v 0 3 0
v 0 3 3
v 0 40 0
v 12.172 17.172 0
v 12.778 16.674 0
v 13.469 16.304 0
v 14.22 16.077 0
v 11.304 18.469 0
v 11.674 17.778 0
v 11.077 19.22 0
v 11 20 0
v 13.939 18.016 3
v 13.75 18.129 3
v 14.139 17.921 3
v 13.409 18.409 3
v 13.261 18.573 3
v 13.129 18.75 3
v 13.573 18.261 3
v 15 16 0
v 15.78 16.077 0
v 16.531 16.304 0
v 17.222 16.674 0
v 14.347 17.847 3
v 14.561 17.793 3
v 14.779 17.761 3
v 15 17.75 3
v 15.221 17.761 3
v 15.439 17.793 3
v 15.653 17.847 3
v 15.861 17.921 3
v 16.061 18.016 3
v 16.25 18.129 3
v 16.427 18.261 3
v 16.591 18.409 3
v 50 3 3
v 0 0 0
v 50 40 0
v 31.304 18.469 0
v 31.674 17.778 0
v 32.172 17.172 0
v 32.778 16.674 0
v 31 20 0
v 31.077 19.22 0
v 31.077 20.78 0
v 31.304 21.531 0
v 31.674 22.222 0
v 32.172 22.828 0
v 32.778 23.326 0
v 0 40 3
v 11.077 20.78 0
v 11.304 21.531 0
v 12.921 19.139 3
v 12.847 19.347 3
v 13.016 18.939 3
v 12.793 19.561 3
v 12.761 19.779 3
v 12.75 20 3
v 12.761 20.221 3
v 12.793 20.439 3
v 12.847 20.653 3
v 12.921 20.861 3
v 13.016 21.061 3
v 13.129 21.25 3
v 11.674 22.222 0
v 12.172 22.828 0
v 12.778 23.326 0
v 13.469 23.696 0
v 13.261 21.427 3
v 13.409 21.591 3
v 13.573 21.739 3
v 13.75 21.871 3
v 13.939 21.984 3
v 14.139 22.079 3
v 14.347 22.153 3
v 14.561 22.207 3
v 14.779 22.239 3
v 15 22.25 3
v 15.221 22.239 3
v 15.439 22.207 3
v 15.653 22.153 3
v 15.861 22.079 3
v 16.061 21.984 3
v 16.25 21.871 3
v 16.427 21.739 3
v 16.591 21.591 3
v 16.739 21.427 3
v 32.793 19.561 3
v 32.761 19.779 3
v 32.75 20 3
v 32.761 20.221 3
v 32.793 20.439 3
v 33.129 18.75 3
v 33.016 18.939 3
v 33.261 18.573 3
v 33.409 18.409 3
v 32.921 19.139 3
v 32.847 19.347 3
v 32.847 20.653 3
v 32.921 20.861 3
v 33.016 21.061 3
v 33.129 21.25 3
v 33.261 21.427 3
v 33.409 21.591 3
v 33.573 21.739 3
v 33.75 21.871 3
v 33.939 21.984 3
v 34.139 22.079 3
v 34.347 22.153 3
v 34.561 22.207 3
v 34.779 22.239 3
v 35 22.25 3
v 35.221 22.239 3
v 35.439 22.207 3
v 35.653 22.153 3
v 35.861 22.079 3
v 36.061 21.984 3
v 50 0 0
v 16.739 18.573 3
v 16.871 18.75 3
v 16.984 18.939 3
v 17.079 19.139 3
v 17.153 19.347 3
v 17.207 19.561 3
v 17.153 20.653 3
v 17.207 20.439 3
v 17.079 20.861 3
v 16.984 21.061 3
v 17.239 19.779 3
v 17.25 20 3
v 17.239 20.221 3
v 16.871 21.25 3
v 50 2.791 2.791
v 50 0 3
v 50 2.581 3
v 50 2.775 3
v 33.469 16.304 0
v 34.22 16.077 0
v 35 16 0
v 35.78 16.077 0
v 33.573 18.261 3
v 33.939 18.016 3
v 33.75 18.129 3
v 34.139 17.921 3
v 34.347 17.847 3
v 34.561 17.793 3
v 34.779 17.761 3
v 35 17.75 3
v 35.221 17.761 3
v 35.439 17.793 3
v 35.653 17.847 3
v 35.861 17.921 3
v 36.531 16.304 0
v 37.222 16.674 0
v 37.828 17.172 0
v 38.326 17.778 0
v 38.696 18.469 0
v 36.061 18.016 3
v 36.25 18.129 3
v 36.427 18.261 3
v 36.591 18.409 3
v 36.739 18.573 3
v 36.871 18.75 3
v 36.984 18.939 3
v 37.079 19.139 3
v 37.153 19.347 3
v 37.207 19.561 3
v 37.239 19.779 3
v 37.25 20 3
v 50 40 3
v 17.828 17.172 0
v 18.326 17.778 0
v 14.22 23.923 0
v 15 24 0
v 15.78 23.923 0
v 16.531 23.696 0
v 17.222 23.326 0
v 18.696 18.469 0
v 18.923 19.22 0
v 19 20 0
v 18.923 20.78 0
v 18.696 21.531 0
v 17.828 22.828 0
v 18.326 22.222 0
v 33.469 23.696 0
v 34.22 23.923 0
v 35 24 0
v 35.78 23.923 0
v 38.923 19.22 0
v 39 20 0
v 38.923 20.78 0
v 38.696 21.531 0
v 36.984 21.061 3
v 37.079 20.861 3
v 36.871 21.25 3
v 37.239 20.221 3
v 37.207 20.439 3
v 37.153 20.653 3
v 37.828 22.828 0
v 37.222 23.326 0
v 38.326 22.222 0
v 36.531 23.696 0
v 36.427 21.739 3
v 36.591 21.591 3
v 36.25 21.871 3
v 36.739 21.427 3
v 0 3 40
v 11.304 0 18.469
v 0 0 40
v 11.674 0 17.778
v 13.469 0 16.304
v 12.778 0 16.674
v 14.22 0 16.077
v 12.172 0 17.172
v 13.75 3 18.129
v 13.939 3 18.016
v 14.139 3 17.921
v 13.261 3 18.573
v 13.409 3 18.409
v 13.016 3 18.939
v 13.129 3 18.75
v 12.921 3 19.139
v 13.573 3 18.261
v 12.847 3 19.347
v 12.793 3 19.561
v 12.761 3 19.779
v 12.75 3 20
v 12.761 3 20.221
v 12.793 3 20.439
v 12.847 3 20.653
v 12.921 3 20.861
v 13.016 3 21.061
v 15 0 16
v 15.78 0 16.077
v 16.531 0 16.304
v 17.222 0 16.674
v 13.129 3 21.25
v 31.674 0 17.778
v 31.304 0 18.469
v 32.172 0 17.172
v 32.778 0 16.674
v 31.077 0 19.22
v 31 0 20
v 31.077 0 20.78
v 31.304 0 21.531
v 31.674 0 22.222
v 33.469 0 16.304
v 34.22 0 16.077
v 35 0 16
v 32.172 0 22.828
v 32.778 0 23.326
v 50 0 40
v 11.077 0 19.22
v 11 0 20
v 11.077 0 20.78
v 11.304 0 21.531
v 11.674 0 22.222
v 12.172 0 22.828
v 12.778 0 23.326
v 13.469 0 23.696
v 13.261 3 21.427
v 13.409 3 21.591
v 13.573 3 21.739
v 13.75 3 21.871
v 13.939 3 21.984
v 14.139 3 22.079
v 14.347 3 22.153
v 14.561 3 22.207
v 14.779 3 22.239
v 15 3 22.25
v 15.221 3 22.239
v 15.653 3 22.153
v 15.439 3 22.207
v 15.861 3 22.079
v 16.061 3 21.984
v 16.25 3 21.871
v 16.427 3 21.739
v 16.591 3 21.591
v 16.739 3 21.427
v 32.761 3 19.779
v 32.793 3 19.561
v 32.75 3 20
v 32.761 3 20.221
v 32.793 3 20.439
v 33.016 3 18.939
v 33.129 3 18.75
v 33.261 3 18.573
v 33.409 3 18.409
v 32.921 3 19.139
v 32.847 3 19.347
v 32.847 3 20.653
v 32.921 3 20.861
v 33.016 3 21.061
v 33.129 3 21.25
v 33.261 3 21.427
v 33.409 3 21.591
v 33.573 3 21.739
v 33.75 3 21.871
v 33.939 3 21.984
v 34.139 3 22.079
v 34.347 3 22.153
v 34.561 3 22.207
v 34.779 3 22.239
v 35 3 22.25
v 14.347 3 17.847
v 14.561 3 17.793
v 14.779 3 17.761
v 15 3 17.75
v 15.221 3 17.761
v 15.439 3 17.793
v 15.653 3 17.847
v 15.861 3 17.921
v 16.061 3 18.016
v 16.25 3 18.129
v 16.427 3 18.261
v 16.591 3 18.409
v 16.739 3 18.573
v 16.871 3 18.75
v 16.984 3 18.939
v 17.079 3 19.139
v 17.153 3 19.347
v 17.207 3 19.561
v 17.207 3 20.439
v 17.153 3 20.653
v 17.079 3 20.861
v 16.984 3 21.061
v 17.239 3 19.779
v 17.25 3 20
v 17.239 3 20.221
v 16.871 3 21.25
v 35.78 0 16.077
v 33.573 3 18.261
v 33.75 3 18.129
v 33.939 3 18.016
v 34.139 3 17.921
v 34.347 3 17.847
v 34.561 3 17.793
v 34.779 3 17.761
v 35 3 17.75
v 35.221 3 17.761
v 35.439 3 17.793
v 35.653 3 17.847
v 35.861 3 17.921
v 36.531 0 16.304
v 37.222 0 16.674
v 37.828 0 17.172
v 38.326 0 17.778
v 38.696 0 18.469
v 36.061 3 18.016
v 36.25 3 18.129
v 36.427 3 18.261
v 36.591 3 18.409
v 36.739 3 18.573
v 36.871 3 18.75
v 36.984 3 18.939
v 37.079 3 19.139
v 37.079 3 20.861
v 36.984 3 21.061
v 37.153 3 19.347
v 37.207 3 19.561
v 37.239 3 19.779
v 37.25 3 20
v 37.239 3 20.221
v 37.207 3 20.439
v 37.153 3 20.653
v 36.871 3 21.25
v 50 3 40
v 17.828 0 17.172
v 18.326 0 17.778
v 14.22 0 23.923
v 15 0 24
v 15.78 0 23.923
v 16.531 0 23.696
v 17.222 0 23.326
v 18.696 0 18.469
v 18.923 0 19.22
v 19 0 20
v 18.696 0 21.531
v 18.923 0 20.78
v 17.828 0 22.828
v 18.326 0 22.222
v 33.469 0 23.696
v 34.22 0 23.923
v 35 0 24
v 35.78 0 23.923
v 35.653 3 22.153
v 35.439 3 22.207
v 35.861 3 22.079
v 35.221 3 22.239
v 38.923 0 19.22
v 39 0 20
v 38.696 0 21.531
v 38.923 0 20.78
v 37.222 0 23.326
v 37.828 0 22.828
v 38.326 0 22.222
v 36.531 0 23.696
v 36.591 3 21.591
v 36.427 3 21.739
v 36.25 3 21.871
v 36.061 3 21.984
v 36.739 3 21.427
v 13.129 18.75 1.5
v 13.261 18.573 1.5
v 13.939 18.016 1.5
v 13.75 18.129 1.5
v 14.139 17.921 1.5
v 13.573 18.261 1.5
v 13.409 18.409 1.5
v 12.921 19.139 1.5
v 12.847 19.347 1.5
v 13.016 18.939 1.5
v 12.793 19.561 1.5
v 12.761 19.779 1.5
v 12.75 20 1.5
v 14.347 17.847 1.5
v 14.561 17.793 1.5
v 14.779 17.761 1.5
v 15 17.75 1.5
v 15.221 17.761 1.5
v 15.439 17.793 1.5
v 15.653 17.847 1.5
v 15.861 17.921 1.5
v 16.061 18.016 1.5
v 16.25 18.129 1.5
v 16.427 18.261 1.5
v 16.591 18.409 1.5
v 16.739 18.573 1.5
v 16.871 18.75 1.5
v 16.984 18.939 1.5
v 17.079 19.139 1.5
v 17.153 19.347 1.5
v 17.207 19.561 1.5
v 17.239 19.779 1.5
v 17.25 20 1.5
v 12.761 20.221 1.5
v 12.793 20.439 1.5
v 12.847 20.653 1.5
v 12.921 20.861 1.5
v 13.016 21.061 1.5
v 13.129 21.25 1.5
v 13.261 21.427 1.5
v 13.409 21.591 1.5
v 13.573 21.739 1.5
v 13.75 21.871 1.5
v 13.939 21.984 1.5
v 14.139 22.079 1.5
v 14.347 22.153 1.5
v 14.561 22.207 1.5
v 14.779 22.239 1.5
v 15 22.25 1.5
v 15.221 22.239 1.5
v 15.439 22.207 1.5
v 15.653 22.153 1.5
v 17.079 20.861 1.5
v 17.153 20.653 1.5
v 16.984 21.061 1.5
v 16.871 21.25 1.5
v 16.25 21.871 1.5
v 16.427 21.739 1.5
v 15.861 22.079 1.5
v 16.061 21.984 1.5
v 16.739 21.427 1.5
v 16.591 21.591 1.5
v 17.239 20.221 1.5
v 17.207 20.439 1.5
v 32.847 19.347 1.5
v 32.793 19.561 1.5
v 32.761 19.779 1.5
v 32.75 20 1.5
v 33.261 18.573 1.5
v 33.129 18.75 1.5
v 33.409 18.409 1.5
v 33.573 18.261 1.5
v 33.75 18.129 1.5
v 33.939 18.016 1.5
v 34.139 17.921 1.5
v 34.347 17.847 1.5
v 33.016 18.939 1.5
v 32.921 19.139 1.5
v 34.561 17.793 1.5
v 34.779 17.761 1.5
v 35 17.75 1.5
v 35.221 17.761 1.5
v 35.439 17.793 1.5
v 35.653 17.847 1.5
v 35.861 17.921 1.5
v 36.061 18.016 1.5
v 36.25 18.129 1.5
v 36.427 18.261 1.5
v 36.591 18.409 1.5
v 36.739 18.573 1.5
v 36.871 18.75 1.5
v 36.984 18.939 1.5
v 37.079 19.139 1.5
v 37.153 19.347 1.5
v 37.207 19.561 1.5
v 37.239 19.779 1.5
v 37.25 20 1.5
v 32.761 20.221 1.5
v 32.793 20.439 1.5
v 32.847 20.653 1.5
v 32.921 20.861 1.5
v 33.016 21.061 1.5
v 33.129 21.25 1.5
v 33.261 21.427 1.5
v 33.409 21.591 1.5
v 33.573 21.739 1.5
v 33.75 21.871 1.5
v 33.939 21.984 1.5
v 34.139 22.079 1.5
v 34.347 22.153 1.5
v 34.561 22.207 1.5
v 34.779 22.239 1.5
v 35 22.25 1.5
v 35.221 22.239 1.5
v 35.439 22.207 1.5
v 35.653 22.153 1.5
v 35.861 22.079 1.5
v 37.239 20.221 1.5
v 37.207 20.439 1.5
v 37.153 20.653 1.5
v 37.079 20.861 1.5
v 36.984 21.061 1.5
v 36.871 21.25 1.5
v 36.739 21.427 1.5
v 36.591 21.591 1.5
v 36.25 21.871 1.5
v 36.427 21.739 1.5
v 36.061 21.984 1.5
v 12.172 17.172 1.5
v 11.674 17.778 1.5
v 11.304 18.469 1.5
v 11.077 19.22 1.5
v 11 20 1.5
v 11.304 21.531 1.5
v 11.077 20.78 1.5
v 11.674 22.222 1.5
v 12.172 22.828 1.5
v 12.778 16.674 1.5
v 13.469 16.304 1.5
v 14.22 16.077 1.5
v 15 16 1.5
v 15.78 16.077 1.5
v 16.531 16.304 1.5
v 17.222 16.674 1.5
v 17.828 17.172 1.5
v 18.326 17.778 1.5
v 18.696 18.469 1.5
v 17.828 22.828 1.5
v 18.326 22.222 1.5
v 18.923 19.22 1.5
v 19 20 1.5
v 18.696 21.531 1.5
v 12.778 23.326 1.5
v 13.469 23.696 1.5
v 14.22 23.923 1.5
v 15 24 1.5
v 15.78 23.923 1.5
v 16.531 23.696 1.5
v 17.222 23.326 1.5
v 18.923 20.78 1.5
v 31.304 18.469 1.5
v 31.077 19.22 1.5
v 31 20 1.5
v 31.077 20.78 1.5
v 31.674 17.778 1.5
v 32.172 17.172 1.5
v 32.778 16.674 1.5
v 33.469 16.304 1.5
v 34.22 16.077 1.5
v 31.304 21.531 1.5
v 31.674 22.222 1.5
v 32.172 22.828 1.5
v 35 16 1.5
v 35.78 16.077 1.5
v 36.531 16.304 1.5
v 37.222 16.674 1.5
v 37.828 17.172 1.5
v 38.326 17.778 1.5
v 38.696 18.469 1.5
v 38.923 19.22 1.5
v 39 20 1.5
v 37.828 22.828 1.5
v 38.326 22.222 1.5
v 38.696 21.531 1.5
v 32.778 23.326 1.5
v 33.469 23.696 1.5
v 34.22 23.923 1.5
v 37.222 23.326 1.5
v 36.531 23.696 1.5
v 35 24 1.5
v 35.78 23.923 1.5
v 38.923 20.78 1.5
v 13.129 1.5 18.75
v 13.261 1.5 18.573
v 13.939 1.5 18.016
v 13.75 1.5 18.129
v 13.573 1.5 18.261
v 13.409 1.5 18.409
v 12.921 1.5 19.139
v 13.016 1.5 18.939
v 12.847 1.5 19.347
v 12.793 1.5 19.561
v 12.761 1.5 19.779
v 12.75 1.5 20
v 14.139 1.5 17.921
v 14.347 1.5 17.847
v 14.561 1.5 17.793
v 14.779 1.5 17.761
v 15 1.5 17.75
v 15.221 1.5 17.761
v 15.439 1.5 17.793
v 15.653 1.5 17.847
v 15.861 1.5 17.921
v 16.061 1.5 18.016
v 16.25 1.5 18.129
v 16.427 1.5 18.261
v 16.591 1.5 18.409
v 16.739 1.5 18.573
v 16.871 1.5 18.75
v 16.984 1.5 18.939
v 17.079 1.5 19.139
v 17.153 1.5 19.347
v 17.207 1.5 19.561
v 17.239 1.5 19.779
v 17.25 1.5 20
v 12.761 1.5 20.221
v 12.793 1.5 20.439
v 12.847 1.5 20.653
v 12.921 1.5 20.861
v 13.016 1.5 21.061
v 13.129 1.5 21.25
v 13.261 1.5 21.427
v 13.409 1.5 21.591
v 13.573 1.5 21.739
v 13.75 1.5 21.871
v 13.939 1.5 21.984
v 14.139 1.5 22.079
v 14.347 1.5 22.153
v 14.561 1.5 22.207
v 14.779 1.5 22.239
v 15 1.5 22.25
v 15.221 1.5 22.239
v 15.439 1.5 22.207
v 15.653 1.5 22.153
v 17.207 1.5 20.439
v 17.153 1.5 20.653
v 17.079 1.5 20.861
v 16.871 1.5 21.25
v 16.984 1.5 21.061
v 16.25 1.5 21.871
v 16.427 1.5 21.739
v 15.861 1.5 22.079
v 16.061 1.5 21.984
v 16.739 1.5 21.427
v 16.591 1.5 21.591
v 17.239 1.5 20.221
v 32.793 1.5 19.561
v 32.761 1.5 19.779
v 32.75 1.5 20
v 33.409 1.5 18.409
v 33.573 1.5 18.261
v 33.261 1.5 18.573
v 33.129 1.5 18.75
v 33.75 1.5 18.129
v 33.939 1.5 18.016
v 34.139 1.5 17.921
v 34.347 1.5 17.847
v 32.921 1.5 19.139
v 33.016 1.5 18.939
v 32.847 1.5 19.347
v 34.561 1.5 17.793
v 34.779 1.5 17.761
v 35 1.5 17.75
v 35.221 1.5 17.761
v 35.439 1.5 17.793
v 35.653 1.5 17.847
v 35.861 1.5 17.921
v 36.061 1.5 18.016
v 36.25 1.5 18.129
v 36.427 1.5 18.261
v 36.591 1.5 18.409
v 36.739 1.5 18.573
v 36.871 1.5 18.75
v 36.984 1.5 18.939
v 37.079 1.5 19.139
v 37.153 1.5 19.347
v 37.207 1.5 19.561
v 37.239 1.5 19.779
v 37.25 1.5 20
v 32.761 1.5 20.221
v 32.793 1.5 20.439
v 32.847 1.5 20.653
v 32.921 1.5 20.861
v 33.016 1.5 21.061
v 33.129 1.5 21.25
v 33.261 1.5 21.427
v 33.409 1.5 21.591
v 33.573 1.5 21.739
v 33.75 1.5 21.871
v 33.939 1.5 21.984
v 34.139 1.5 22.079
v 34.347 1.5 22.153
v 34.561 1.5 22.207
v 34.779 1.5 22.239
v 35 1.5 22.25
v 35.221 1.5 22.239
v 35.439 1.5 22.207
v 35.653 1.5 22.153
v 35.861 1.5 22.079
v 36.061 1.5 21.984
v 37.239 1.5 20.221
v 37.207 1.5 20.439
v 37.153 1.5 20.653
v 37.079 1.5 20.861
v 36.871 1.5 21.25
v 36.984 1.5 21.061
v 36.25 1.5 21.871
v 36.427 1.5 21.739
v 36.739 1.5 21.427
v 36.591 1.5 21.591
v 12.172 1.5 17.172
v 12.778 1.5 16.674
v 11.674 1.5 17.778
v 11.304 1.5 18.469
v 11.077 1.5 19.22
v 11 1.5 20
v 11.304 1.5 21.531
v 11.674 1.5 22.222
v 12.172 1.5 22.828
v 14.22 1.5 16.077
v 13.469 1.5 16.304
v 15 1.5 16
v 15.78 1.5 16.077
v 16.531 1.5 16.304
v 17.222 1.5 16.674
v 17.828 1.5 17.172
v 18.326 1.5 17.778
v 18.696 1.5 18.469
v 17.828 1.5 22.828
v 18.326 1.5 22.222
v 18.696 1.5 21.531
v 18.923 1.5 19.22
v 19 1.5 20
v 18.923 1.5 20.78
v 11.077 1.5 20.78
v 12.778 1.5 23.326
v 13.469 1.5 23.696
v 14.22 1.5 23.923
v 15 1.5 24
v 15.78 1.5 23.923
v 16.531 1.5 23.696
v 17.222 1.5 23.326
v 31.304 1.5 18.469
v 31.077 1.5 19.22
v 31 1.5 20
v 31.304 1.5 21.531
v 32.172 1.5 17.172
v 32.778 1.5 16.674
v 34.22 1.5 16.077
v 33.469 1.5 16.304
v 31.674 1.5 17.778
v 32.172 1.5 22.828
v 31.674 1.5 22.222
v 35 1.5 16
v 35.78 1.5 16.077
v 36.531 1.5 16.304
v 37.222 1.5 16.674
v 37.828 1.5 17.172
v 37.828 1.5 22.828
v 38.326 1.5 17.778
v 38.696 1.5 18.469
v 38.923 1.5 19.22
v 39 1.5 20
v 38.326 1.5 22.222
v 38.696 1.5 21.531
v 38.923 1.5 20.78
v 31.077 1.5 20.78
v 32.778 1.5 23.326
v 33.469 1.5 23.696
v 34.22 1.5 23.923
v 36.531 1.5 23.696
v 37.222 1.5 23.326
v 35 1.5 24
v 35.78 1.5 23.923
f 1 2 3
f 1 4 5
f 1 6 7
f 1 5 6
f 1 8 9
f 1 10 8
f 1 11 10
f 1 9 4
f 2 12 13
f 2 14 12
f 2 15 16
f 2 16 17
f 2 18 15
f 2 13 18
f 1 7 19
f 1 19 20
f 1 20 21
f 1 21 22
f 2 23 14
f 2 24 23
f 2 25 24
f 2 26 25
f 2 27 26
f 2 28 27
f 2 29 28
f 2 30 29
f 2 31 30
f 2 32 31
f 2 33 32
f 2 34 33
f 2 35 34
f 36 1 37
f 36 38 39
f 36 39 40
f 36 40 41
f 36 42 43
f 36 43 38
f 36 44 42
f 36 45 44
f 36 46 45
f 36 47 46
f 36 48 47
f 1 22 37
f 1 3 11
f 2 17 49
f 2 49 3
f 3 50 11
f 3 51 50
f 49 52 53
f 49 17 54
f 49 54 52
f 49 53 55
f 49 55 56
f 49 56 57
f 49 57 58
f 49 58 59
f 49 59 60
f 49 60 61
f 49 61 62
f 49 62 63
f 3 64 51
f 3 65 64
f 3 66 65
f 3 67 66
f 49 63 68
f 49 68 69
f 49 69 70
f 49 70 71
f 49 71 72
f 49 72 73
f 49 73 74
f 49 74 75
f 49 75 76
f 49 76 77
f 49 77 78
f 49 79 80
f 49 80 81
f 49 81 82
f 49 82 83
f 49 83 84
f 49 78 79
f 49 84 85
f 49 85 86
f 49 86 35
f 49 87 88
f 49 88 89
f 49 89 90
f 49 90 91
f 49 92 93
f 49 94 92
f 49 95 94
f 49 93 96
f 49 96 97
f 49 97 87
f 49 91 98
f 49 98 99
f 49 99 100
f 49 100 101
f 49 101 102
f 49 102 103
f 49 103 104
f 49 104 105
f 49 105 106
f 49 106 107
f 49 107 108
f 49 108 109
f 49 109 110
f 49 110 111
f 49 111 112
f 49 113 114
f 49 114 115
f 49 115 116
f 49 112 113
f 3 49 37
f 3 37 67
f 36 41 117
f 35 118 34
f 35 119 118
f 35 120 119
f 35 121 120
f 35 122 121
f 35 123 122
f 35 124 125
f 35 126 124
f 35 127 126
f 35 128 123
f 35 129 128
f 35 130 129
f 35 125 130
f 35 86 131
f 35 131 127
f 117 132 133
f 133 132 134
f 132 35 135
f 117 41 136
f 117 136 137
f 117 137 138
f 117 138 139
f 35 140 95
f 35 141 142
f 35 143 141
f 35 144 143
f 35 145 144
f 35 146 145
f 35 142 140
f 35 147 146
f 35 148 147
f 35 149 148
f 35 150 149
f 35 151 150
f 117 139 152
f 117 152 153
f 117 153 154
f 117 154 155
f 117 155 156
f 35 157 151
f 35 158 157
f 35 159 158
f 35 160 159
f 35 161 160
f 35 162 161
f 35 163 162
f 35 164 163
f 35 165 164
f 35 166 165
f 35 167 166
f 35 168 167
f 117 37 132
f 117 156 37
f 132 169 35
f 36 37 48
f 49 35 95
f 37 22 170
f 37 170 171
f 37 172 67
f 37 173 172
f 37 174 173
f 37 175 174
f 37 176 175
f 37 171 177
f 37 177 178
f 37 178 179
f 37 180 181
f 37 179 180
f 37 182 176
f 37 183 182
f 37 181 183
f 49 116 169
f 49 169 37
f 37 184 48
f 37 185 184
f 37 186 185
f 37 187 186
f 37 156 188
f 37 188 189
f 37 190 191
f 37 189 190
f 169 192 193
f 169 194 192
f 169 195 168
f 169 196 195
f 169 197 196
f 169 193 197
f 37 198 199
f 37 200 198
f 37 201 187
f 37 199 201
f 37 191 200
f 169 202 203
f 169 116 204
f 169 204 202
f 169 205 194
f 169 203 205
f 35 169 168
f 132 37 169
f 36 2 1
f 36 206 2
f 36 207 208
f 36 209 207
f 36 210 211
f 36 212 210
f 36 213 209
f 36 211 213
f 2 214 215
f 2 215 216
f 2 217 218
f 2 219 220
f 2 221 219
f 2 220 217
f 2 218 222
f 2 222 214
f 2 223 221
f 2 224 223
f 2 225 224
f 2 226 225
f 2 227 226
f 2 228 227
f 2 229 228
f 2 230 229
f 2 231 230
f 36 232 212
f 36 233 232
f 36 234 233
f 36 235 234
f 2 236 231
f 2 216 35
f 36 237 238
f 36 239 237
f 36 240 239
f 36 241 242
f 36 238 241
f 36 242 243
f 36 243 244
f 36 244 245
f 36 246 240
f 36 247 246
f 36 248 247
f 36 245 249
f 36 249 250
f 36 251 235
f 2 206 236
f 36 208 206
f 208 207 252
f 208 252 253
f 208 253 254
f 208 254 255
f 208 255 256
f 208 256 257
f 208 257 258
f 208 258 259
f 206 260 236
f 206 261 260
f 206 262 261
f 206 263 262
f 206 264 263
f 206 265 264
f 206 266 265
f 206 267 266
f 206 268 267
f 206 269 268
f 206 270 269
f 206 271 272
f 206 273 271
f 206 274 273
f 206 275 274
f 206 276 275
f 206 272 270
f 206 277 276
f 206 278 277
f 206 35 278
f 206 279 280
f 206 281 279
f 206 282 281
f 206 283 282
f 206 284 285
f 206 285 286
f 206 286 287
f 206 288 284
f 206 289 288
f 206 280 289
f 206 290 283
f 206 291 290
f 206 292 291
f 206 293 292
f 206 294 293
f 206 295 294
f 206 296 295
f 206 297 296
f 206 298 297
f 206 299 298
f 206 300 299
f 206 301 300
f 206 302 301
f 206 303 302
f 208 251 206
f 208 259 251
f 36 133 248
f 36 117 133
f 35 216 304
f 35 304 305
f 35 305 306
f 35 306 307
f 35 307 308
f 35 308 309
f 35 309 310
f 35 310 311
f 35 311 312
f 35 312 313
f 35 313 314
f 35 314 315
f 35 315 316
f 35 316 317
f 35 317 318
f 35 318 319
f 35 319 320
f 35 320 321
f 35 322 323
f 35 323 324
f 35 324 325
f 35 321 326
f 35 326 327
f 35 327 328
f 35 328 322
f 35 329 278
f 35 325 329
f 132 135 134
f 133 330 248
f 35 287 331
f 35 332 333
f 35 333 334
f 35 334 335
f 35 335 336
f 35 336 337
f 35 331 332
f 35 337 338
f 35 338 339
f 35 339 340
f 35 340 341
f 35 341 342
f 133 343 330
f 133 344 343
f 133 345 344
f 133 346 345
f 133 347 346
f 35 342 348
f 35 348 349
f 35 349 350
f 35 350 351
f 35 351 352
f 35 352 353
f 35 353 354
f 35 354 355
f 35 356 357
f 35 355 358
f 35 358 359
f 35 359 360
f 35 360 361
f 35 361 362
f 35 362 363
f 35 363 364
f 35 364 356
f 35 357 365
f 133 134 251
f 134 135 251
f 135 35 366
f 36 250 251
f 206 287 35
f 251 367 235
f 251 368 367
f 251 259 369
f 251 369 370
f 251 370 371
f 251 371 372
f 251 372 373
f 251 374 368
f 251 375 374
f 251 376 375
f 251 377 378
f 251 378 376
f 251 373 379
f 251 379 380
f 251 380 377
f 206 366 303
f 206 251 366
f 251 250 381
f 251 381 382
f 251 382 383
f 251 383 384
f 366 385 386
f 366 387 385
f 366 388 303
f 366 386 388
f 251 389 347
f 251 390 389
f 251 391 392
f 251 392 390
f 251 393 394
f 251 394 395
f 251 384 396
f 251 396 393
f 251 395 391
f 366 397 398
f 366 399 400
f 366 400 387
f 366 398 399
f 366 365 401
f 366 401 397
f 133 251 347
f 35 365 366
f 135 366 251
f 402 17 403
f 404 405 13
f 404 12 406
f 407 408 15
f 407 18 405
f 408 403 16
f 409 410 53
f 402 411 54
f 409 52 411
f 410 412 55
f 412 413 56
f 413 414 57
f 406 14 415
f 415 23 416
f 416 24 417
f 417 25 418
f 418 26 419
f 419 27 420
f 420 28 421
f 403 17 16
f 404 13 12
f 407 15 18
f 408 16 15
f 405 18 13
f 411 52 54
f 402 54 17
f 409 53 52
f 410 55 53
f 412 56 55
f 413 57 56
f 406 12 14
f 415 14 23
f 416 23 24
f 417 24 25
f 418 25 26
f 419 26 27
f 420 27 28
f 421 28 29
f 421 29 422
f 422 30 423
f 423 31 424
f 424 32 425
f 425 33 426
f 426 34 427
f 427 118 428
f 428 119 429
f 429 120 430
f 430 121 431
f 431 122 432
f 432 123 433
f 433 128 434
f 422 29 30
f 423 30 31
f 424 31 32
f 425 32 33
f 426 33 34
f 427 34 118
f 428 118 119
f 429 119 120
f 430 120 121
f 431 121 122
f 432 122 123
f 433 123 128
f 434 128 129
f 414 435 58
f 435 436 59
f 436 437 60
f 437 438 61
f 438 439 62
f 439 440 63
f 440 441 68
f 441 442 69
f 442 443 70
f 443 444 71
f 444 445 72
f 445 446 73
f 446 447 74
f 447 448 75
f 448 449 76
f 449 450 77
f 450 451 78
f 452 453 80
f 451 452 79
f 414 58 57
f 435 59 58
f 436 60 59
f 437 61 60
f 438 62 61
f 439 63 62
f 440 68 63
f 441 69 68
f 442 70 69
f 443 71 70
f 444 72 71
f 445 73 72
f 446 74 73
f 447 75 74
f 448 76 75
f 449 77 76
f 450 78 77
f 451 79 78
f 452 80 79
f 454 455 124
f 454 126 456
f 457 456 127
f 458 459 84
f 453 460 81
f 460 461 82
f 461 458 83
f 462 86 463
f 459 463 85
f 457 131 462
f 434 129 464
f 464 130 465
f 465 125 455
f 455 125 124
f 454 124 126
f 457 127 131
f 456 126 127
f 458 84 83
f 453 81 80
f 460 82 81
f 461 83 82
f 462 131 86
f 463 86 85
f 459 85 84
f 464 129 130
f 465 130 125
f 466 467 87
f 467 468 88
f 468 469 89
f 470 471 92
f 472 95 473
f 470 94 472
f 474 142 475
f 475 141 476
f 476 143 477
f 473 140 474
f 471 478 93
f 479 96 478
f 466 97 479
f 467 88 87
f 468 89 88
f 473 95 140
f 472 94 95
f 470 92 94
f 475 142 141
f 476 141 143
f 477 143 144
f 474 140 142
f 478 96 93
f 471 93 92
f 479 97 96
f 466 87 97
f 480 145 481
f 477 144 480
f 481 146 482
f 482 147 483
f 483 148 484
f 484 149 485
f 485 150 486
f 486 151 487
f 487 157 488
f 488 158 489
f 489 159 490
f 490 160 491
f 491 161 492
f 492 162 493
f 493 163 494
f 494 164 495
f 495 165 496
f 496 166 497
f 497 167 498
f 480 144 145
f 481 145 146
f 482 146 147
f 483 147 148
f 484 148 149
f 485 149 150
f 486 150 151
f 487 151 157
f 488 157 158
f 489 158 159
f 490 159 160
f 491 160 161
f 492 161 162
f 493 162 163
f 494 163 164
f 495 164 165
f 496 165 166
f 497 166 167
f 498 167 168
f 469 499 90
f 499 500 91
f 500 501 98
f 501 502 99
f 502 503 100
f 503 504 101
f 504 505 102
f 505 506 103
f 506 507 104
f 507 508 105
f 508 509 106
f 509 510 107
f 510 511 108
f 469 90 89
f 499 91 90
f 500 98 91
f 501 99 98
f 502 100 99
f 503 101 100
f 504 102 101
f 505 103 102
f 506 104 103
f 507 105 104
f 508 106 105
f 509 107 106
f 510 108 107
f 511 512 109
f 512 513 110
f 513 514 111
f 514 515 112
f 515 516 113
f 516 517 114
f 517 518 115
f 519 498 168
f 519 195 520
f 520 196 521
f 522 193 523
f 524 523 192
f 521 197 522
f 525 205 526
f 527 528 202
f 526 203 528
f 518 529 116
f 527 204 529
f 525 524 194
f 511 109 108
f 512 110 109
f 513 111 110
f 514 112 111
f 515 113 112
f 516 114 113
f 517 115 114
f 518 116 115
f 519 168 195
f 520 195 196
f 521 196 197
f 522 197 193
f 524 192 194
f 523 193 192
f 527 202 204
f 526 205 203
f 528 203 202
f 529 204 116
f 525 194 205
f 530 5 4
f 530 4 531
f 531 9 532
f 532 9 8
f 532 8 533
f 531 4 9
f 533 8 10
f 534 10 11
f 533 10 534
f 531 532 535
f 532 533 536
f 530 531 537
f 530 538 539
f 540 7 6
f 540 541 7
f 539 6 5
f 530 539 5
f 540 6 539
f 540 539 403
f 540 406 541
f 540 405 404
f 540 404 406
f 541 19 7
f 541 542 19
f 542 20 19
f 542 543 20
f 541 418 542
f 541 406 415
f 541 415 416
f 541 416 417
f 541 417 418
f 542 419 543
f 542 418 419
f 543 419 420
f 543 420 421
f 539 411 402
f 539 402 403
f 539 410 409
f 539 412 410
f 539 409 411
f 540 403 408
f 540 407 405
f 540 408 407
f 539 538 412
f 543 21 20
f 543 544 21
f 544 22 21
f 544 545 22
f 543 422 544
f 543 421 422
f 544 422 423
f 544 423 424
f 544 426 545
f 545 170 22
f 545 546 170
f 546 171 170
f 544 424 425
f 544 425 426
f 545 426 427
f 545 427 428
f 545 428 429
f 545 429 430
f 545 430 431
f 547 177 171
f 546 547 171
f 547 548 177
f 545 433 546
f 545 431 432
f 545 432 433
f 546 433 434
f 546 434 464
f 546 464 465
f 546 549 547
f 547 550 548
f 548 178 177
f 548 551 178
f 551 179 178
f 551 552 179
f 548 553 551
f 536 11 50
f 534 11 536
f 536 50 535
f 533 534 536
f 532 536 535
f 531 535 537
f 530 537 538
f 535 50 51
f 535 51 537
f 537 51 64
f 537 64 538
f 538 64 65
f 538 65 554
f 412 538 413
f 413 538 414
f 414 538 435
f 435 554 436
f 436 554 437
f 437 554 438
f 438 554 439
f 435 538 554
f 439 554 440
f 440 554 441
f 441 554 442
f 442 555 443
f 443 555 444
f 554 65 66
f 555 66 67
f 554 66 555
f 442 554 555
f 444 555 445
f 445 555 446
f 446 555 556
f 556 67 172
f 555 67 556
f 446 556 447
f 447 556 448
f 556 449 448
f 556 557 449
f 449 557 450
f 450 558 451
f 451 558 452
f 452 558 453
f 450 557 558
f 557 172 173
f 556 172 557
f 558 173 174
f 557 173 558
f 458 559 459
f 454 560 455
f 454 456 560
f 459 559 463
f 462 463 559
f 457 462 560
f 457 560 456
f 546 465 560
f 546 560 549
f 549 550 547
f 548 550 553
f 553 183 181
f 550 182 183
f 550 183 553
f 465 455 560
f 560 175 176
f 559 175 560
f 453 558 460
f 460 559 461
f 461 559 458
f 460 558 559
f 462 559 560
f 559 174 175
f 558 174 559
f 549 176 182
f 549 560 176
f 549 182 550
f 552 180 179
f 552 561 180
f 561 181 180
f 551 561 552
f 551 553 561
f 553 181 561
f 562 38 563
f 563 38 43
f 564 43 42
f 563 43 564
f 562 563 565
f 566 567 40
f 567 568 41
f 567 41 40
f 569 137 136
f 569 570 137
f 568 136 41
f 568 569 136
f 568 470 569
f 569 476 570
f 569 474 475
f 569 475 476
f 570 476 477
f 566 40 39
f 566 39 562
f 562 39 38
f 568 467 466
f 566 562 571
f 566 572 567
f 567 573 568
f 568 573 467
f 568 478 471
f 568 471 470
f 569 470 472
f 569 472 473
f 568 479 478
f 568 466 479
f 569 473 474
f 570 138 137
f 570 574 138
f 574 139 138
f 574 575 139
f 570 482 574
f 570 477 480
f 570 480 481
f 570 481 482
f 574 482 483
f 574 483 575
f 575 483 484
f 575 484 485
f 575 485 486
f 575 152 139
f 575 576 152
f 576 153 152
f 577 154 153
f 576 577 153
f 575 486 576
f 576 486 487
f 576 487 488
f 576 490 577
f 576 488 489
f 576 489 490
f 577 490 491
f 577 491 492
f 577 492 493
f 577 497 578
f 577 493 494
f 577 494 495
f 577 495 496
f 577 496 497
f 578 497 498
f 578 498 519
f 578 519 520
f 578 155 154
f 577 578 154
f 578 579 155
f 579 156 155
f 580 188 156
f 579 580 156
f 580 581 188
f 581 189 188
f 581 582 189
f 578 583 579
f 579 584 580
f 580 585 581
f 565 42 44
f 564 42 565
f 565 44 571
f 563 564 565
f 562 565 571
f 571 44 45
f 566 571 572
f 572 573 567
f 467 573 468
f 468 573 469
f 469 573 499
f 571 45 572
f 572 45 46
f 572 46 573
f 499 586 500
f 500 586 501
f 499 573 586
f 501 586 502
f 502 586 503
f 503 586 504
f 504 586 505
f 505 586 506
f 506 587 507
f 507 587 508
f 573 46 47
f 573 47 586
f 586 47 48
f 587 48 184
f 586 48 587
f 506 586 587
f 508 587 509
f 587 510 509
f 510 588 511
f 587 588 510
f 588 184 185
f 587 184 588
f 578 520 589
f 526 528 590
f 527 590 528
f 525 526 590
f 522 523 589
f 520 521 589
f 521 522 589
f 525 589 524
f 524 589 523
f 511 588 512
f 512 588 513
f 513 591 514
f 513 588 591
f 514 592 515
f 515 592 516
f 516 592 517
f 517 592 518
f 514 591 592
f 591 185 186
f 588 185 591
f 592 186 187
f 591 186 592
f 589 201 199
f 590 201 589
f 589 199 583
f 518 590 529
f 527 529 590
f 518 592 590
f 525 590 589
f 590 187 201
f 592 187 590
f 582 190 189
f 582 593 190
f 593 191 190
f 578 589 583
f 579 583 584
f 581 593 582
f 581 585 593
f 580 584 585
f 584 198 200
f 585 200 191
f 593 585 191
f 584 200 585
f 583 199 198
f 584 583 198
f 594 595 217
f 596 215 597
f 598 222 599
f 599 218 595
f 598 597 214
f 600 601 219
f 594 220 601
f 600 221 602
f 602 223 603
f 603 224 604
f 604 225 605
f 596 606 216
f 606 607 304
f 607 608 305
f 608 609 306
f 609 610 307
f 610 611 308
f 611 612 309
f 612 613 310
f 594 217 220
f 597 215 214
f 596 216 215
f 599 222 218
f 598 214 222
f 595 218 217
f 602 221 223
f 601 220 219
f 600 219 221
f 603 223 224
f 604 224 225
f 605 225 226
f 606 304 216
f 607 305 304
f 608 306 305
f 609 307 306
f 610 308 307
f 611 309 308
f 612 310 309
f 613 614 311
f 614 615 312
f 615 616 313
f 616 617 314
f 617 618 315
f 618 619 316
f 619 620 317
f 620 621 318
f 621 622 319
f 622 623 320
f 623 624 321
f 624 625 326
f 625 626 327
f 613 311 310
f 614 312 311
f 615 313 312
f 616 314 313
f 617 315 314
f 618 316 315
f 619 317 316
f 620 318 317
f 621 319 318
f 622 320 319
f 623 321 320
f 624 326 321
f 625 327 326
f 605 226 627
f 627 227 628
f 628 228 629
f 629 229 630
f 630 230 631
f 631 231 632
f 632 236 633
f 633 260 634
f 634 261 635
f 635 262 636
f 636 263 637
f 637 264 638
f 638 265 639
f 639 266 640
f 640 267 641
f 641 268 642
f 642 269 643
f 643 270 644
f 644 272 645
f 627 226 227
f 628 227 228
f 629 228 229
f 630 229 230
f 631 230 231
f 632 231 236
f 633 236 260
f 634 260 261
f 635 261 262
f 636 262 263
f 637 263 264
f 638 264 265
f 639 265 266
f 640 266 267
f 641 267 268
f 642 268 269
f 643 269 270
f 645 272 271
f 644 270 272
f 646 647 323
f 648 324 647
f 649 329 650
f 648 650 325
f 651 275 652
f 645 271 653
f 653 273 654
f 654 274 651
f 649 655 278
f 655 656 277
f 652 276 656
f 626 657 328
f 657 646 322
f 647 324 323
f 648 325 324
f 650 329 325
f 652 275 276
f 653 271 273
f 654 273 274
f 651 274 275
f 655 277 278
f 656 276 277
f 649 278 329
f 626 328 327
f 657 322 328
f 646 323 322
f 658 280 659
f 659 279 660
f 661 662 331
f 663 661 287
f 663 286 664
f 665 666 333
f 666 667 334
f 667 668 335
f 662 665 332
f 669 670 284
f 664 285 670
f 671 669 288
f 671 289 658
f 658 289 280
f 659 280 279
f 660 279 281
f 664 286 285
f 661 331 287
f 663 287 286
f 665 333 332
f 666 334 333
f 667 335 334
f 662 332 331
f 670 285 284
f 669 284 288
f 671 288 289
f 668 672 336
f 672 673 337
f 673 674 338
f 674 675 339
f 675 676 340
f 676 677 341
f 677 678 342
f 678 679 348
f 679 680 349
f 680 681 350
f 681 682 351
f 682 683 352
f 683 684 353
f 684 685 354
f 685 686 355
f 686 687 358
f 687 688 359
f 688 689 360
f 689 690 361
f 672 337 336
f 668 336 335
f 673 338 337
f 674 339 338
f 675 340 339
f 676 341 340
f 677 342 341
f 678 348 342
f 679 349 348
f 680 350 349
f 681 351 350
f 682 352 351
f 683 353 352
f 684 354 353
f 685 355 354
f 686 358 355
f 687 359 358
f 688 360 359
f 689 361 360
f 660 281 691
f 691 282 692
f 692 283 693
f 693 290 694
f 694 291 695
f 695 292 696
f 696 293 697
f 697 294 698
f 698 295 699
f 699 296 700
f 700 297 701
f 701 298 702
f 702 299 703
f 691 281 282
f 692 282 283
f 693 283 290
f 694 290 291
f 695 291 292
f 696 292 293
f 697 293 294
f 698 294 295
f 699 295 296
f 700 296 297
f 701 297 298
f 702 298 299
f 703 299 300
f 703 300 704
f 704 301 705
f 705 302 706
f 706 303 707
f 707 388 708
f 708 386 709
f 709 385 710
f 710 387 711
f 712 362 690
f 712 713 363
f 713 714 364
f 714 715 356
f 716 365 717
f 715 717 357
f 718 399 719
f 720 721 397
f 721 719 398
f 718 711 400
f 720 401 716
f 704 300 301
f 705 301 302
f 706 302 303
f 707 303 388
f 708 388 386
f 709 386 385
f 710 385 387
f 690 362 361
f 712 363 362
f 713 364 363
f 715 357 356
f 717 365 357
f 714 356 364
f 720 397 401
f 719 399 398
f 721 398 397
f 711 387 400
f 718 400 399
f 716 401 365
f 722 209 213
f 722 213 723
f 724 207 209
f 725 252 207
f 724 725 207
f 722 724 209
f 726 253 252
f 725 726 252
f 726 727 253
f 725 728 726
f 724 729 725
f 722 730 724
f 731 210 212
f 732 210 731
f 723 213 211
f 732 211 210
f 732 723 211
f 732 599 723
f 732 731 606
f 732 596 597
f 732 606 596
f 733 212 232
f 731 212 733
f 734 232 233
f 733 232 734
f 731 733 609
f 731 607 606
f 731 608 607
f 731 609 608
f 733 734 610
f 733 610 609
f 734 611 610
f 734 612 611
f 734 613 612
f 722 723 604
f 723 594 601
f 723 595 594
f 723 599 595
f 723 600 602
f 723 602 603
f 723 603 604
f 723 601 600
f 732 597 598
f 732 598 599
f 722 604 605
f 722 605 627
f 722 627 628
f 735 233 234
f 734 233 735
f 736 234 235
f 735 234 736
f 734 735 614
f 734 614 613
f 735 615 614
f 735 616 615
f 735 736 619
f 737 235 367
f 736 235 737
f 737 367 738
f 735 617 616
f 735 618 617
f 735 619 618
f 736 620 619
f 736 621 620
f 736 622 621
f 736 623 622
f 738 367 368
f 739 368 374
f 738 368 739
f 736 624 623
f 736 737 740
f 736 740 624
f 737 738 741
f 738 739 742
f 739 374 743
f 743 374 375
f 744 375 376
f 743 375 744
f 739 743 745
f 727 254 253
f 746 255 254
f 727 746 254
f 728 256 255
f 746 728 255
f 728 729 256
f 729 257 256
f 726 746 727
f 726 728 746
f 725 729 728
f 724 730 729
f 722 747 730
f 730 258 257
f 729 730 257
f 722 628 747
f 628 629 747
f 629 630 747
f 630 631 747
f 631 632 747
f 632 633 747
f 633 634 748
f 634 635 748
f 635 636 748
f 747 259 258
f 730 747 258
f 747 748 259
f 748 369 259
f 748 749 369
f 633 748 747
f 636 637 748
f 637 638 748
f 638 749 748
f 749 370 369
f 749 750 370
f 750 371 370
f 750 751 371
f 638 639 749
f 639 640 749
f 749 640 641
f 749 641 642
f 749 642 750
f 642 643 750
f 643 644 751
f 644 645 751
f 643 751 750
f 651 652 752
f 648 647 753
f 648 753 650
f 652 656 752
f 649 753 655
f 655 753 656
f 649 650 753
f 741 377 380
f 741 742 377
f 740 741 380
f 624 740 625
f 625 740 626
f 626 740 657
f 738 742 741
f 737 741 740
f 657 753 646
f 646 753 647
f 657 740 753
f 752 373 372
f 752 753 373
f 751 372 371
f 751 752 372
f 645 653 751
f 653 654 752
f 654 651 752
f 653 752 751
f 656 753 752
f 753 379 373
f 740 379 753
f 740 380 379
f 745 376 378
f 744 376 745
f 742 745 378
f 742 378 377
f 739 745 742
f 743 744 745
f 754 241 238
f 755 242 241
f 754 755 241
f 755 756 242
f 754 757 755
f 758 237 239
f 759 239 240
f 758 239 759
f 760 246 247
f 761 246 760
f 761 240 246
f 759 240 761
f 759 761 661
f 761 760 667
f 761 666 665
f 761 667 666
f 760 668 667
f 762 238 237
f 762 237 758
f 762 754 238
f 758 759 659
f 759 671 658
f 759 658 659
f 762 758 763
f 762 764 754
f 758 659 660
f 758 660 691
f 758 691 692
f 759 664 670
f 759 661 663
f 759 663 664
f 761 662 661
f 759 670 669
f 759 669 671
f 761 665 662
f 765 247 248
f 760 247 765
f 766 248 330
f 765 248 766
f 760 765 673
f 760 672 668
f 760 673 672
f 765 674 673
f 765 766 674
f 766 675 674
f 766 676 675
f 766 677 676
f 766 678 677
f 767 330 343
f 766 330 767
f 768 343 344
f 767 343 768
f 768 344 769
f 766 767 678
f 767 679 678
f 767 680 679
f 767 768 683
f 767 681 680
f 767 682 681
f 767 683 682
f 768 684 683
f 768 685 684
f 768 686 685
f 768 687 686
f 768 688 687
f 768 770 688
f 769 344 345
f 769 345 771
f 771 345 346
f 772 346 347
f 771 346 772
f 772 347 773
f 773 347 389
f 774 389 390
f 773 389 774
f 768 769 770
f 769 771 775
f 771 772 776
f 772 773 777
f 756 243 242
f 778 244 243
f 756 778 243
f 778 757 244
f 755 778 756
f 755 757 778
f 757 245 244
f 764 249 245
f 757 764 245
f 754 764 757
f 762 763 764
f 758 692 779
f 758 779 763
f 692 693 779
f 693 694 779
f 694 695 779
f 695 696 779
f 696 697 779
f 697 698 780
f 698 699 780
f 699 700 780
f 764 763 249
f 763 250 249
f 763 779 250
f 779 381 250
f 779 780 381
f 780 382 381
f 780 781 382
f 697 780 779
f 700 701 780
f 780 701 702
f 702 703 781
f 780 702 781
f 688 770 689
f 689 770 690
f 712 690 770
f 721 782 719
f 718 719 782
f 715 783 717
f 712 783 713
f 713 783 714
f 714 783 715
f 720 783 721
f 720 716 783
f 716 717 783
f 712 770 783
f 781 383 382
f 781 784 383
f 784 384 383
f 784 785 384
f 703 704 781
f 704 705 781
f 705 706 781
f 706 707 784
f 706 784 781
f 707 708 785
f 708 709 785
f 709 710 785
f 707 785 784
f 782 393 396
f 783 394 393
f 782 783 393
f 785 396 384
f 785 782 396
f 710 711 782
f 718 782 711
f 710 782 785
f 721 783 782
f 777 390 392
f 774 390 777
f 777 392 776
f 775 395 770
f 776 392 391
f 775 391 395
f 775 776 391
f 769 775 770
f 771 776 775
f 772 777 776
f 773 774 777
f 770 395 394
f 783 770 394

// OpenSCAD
// パラメータ設定
width = 50;
depth = 40;
height = 40;
thickness = 3;

hole_dia = 4.5;
cs_dia = 8.0;
cs_depth = 2.0;

// 皿穴モジュール（外側から皿座面を彫る）
module hole_h(inverted = false) {
    union() {
        // 貫通穴
        cylinder(d = hole_dia, h = thickness * 2, center = true);
        // 皿座面
        translate([0, 0, inverted ? -thickness/2 + cs_depth/2 : thickness/2 - cs_depth/2])
            cylinder(d = cs_dia, h = cs_depth, center = true, $fn = 32);
    }
}

module l_bracket() {
    difference() {
        union() {
            // 水平面 (Y方向に40mm)
            cube([width, depth, thickness]);
            // 垂直面 (Z方向に40mm)
            cube([width, thickness, height]);
        }

        // 水平面の穴: 縁から10mm内側 (Y=10とY=30の位置)
        // 水平面の上面(Z=3)側から皿座面を彫るため、invertedをfalseにする
        for (x = [-1, 1]) {
            translate([width / 2 + x * 10, 10 + (depth - 20) / 2, 0])
                hole_h(inverted = false);
        }

        // 垂直面の穴: 縁から10mm内側 (Z=10とZ=30の位置)
        // 垂直面の前面(Y=3)側から皿座面を彫るため、invertedをtrueにする
        for (x = [-1, 1]) {
            translate([width / 2 + x * 10, 0, 10 + (height - 20) / 2])
                rotate([90, 0, 0])
                    hole_h(inverted = true);
        }
    }
}

$fn = 64;
l_bracket();
